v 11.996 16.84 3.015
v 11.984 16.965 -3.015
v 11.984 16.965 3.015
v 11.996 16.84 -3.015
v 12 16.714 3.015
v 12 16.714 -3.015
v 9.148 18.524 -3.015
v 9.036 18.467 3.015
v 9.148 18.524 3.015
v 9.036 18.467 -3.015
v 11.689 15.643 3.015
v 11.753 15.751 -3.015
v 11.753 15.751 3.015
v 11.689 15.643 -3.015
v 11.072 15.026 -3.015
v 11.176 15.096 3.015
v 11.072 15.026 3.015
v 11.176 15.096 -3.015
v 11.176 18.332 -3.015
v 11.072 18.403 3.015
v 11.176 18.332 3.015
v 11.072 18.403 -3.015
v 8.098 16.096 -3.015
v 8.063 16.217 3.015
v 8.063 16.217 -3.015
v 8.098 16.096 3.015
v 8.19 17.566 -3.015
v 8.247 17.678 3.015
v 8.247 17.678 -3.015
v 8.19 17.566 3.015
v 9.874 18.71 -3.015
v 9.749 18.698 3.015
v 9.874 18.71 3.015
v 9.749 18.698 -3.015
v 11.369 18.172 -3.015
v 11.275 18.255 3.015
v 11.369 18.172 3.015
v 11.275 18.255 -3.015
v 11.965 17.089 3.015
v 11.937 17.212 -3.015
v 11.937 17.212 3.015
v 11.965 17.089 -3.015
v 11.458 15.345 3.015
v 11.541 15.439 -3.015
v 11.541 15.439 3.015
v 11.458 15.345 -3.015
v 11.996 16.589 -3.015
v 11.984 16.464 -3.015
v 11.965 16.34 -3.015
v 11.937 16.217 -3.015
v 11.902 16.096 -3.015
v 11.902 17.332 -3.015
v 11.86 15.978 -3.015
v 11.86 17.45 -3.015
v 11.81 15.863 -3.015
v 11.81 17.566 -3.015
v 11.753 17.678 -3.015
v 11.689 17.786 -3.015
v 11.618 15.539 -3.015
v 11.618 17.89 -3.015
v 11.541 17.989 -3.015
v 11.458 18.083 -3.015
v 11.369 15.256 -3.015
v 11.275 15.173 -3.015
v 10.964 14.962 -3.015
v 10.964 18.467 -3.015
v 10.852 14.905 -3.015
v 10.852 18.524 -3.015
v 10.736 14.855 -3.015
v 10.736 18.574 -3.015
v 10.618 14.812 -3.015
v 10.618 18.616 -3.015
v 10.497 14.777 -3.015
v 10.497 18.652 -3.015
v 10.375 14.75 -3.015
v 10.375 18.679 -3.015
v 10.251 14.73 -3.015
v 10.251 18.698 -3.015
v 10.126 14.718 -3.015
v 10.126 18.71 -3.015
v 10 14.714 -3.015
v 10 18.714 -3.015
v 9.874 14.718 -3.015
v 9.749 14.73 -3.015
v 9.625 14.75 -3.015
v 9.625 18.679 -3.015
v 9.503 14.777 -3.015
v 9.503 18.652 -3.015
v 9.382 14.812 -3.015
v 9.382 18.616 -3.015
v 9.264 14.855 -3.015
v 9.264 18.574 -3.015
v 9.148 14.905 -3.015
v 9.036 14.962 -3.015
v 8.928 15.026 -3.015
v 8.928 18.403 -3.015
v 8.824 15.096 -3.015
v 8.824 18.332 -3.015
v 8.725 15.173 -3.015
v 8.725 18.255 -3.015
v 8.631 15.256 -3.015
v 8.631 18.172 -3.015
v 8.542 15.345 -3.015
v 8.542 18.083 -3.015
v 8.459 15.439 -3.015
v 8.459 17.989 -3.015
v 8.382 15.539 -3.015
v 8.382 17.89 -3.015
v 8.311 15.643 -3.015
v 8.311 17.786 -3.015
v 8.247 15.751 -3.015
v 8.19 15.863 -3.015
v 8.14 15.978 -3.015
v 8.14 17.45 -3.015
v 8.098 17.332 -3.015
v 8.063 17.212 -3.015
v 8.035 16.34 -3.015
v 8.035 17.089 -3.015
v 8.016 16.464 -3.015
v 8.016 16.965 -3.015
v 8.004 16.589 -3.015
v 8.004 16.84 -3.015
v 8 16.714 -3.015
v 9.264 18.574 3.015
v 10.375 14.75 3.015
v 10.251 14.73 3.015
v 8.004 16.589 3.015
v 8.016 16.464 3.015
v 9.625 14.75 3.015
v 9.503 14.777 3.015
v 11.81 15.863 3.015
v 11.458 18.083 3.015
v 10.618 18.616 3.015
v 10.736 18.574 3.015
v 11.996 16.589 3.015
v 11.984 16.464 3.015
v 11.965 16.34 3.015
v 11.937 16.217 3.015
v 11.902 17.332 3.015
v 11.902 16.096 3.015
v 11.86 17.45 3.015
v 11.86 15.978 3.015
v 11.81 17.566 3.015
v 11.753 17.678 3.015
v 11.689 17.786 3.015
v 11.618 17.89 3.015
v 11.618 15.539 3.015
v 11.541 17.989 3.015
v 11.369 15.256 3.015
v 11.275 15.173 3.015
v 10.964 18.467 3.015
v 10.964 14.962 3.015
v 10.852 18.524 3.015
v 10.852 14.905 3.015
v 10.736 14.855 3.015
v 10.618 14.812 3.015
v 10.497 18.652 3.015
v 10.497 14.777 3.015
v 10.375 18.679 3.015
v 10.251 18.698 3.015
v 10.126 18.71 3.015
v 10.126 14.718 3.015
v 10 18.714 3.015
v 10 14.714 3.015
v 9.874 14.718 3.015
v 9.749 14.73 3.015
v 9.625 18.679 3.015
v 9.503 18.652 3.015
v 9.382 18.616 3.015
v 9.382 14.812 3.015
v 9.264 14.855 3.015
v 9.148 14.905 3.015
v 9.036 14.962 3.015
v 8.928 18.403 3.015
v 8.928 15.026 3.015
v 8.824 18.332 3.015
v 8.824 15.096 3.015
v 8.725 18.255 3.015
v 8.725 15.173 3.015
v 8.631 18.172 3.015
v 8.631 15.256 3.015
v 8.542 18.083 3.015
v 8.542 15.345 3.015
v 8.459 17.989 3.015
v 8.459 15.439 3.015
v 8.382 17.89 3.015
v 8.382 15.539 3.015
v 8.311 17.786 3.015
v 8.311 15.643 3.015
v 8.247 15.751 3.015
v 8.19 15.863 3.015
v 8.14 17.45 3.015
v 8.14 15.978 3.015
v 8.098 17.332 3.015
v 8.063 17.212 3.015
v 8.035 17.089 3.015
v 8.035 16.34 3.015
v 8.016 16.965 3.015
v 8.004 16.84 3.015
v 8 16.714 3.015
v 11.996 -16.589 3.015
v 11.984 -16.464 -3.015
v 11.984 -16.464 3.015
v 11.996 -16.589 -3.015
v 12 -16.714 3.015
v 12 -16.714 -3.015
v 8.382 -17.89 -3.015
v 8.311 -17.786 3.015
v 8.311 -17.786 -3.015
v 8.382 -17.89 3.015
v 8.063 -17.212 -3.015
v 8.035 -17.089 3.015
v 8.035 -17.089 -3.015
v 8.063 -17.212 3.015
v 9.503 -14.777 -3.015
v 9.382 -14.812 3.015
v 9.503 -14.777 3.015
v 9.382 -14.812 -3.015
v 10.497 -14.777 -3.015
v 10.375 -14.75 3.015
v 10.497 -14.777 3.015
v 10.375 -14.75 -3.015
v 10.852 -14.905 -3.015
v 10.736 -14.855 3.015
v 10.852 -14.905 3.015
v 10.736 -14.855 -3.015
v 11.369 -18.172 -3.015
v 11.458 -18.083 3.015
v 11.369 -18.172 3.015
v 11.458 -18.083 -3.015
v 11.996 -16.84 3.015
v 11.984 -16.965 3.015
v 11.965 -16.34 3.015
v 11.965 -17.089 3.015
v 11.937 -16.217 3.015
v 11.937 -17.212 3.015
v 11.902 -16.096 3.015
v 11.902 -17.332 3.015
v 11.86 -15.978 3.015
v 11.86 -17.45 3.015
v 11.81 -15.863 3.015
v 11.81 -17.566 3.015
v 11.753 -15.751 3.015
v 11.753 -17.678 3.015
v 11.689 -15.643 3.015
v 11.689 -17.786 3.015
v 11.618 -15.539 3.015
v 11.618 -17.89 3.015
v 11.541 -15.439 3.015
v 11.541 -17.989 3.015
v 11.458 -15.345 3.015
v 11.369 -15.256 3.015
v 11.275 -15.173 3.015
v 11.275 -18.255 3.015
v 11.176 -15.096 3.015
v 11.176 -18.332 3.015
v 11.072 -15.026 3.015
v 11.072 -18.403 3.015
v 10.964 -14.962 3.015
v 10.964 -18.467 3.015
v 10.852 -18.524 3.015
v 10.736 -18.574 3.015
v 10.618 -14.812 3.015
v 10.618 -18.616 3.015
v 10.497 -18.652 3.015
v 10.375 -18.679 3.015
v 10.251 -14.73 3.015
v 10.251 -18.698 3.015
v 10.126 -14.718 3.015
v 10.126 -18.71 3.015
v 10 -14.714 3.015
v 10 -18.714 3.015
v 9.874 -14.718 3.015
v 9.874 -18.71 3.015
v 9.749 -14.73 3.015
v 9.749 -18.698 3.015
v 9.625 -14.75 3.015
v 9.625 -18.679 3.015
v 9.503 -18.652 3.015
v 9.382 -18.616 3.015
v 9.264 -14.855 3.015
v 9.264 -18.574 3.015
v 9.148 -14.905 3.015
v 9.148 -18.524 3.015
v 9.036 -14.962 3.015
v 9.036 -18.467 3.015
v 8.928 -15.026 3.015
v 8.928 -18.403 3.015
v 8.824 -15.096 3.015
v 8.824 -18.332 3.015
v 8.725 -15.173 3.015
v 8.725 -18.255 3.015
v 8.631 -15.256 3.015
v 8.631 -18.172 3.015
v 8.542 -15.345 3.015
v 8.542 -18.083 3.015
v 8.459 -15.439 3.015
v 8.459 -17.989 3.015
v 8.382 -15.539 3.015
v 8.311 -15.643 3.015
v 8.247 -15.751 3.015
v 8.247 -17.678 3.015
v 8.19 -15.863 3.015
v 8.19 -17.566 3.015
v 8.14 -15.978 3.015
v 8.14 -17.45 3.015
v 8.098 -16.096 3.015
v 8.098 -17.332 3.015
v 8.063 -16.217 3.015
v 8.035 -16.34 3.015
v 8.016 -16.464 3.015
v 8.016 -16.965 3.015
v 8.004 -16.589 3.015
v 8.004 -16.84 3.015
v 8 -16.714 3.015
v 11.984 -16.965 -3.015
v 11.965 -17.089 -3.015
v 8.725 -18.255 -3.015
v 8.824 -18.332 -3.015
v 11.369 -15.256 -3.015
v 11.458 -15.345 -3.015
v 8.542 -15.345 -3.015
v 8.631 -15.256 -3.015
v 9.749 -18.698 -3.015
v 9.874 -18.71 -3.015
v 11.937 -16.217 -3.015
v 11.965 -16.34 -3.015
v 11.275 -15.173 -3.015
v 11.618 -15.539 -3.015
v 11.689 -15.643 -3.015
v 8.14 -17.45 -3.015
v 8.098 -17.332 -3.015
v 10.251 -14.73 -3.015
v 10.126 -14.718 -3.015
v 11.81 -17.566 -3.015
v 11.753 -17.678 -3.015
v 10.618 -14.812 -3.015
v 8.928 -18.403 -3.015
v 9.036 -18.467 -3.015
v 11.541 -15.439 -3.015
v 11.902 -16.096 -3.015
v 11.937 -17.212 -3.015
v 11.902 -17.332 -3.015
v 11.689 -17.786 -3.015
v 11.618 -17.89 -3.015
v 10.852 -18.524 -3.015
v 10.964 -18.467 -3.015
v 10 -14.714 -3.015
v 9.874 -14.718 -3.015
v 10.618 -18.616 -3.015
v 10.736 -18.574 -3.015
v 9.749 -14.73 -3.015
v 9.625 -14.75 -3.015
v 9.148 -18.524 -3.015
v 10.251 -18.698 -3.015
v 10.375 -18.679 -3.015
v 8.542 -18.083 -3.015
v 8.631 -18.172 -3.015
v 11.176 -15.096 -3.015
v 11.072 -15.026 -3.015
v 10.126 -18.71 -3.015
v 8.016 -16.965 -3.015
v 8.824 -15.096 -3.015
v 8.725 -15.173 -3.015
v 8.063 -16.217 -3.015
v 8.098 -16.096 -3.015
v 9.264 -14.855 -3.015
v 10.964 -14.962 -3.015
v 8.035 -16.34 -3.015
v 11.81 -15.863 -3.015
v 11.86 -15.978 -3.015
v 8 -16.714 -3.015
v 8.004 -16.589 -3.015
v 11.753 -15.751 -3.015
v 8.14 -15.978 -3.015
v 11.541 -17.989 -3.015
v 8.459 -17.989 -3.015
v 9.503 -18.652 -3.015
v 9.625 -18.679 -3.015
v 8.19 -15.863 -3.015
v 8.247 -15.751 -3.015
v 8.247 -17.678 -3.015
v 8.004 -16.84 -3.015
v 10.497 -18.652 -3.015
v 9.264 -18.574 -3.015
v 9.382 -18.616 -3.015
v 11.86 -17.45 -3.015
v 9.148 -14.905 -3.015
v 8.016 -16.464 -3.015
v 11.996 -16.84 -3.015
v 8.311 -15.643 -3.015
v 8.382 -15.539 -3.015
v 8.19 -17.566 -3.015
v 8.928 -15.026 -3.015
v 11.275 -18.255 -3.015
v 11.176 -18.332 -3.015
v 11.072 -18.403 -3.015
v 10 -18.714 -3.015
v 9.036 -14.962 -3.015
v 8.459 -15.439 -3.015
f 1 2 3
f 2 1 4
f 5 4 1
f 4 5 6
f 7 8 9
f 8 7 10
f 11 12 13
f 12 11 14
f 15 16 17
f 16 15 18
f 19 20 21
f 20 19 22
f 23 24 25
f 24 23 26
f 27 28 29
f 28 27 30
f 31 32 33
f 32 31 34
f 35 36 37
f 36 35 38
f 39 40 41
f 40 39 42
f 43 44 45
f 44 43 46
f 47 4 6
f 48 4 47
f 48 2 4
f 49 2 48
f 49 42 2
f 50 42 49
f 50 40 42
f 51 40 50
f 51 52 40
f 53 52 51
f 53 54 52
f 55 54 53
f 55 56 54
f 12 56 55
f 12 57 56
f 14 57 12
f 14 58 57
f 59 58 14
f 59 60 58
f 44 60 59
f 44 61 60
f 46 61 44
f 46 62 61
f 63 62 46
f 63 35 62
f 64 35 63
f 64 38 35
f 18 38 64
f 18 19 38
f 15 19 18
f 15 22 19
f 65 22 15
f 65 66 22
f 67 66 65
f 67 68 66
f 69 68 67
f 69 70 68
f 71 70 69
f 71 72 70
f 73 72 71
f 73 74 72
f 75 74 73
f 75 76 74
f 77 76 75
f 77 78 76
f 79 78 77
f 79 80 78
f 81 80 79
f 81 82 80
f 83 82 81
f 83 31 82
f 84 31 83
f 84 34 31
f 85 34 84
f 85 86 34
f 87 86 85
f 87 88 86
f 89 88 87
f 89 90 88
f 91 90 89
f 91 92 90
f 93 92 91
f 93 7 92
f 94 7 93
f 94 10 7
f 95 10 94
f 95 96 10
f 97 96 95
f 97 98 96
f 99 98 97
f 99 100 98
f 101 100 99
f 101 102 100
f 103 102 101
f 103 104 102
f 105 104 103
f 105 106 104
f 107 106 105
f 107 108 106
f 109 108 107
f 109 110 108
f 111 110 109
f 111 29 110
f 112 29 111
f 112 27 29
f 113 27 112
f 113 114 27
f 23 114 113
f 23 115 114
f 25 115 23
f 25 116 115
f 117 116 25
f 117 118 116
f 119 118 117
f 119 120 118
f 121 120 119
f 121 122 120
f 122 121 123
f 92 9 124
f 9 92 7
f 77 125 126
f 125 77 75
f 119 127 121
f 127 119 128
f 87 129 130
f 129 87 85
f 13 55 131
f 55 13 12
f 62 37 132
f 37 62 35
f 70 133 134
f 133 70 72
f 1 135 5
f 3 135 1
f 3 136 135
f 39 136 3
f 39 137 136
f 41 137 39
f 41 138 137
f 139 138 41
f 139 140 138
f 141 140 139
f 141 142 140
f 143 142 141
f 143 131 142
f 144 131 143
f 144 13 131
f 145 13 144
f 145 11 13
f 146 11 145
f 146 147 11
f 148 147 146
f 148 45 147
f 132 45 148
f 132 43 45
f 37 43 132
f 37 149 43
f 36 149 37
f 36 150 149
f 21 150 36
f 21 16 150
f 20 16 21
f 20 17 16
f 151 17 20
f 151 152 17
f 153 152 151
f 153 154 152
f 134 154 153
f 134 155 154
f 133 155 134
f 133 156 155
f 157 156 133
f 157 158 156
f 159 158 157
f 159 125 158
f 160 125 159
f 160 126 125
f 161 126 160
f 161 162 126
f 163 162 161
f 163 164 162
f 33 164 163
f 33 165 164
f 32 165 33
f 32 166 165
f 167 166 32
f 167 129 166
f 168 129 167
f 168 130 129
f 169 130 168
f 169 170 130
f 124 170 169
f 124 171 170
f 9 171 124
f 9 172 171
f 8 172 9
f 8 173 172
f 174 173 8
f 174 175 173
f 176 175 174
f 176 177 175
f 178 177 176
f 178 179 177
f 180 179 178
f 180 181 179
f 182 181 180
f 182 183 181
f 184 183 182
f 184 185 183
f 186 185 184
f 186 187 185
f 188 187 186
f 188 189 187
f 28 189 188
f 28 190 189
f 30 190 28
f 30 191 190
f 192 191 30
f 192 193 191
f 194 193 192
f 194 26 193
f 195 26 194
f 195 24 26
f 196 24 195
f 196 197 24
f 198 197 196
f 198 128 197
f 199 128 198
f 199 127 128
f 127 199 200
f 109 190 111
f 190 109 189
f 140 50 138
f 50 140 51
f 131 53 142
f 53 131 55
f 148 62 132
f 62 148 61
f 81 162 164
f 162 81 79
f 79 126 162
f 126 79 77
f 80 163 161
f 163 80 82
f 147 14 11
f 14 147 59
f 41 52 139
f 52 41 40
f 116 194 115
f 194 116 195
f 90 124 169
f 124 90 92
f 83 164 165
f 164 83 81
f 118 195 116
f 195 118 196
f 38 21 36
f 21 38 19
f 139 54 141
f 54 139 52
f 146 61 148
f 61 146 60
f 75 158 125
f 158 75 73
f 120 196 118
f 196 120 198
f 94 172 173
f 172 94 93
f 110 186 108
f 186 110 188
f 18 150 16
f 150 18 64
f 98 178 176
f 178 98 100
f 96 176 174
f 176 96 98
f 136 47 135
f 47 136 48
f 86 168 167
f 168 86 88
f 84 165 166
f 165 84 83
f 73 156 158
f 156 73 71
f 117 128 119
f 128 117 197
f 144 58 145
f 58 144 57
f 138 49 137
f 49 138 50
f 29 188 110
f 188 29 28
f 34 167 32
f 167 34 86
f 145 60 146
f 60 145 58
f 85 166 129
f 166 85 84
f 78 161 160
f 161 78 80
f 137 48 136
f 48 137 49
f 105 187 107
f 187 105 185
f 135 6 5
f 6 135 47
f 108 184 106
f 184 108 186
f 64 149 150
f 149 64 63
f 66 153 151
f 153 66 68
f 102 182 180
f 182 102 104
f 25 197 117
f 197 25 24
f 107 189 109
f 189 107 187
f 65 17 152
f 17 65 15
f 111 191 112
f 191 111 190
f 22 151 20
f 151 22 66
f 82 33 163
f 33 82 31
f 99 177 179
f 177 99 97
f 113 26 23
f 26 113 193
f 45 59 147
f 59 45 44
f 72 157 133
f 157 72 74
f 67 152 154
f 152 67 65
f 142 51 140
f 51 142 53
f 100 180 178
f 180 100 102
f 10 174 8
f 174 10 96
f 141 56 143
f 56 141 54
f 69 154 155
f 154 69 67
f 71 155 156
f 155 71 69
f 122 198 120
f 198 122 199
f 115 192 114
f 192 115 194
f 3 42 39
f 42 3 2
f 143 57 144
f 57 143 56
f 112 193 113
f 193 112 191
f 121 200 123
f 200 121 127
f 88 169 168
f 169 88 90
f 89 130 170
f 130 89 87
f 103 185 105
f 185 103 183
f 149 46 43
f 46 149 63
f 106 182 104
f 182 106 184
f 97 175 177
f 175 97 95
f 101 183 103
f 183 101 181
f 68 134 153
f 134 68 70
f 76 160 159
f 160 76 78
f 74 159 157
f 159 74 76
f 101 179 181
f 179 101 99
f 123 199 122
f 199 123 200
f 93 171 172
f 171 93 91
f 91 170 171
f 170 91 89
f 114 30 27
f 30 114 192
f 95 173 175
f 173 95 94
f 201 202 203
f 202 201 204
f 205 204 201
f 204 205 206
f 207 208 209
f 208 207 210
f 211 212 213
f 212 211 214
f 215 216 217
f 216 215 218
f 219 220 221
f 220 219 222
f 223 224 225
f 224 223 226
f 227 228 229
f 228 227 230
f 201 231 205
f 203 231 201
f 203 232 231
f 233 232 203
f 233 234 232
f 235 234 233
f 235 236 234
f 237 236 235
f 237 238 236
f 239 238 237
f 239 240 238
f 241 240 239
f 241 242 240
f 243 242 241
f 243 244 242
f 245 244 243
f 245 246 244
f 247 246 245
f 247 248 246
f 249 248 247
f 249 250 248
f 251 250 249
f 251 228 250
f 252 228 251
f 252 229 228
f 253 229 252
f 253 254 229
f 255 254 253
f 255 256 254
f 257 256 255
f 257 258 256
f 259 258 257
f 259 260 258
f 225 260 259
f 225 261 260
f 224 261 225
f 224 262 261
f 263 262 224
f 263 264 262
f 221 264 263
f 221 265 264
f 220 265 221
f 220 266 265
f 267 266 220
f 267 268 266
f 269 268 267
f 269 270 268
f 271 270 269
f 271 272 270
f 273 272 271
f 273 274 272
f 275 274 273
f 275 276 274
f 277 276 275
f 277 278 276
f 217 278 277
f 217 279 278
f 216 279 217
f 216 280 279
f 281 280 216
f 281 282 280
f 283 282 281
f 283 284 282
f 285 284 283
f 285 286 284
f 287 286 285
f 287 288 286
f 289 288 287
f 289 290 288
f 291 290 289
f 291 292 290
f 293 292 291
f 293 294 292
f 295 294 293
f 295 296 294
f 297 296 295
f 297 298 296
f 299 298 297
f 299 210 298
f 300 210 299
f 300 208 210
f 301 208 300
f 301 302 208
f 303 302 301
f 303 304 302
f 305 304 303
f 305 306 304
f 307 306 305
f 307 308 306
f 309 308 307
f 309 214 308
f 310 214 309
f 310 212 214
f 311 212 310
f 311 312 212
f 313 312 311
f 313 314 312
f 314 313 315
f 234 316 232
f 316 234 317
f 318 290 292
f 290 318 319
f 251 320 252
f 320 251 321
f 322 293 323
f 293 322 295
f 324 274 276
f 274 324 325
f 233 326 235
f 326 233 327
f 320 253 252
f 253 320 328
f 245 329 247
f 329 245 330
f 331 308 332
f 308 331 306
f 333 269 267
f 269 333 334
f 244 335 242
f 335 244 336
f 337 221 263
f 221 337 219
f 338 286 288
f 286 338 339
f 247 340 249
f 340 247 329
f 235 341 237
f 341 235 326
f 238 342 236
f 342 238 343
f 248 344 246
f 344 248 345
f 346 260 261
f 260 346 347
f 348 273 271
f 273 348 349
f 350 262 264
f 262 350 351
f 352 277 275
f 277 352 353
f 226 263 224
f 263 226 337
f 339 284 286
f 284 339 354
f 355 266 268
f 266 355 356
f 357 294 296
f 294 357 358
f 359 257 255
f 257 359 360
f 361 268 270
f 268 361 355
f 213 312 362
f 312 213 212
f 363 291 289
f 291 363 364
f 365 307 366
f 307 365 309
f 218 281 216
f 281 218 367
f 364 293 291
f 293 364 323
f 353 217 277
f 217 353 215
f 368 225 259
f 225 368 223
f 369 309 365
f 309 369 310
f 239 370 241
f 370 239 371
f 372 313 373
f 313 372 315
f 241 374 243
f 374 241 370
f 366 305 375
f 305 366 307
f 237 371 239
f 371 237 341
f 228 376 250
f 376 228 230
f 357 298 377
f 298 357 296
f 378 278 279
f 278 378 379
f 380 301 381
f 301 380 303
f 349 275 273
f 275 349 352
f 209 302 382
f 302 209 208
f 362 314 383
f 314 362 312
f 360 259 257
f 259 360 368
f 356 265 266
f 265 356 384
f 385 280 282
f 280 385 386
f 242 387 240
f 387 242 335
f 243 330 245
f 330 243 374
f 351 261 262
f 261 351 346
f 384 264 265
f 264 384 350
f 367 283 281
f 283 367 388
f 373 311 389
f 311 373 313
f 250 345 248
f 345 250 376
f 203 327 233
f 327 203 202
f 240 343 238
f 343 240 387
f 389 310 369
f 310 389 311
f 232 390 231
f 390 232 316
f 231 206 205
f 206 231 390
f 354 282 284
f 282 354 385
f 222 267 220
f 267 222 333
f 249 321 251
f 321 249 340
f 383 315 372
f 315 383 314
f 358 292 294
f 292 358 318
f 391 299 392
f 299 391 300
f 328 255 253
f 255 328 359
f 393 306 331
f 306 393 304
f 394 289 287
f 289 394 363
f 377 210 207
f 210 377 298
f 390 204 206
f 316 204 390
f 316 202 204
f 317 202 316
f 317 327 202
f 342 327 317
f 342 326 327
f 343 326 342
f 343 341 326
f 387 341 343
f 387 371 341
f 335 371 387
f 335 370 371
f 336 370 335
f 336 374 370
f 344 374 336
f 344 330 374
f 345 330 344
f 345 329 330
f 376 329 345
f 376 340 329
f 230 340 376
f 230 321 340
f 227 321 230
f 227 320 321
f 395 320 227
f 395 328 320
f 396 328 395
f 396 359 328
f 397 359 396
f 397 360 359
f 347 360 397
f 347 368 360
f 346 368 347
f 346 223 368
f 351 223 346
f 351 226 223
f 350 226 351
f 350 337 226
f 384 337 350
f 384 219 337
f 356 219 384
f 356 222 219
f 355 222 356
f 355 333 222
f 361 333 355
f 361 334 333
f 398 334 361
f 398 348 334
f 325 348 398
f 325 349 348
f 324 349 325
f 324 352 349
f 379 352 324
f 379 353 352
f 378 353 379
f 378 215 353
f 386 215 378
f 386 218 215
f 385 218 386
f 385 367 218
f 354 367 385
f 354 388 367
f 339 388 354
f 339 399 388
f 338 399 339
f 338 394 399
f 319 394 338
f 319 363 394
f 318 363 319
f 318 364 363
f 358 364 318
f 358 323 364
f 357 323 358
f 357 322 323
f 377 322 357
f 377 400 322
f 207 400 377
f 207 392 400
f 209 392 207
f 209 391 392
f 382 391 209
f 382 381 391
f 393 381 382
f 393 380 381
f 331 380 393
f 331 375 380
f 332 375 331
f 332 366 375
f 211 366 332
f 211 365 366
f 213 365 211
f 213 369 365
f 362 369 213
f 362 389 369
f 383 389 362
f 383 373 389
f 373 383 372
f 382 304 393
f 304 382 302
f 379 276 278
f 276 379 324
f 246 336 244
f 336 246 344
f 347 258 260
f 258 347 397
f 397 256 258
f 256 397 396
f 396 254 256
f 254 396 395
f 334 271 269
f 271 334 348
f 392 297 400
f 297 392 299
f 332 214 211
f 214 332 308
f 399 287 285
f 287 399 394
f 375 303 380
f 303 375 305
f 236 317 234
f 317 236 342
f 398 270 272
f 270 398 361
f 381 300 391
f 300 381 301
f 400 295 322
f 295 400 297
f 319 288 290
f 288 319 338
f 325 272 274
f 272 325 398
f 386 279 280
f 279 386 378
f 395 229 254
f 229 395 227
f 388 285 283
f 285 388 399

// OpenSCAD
$fn = 100;
translate(v = [10, 0, 0])
{
  union()
  {
    translate(v = [0, 16.714285714285715, 0])
    {
      cylinder(h = 6.03, r = 2, center = true);
    }
    translate(v = [0, -16.714285714285715, 0])
    {
      cylinder(h = 6.03, r = 2, center = true);
    }
  }
}
